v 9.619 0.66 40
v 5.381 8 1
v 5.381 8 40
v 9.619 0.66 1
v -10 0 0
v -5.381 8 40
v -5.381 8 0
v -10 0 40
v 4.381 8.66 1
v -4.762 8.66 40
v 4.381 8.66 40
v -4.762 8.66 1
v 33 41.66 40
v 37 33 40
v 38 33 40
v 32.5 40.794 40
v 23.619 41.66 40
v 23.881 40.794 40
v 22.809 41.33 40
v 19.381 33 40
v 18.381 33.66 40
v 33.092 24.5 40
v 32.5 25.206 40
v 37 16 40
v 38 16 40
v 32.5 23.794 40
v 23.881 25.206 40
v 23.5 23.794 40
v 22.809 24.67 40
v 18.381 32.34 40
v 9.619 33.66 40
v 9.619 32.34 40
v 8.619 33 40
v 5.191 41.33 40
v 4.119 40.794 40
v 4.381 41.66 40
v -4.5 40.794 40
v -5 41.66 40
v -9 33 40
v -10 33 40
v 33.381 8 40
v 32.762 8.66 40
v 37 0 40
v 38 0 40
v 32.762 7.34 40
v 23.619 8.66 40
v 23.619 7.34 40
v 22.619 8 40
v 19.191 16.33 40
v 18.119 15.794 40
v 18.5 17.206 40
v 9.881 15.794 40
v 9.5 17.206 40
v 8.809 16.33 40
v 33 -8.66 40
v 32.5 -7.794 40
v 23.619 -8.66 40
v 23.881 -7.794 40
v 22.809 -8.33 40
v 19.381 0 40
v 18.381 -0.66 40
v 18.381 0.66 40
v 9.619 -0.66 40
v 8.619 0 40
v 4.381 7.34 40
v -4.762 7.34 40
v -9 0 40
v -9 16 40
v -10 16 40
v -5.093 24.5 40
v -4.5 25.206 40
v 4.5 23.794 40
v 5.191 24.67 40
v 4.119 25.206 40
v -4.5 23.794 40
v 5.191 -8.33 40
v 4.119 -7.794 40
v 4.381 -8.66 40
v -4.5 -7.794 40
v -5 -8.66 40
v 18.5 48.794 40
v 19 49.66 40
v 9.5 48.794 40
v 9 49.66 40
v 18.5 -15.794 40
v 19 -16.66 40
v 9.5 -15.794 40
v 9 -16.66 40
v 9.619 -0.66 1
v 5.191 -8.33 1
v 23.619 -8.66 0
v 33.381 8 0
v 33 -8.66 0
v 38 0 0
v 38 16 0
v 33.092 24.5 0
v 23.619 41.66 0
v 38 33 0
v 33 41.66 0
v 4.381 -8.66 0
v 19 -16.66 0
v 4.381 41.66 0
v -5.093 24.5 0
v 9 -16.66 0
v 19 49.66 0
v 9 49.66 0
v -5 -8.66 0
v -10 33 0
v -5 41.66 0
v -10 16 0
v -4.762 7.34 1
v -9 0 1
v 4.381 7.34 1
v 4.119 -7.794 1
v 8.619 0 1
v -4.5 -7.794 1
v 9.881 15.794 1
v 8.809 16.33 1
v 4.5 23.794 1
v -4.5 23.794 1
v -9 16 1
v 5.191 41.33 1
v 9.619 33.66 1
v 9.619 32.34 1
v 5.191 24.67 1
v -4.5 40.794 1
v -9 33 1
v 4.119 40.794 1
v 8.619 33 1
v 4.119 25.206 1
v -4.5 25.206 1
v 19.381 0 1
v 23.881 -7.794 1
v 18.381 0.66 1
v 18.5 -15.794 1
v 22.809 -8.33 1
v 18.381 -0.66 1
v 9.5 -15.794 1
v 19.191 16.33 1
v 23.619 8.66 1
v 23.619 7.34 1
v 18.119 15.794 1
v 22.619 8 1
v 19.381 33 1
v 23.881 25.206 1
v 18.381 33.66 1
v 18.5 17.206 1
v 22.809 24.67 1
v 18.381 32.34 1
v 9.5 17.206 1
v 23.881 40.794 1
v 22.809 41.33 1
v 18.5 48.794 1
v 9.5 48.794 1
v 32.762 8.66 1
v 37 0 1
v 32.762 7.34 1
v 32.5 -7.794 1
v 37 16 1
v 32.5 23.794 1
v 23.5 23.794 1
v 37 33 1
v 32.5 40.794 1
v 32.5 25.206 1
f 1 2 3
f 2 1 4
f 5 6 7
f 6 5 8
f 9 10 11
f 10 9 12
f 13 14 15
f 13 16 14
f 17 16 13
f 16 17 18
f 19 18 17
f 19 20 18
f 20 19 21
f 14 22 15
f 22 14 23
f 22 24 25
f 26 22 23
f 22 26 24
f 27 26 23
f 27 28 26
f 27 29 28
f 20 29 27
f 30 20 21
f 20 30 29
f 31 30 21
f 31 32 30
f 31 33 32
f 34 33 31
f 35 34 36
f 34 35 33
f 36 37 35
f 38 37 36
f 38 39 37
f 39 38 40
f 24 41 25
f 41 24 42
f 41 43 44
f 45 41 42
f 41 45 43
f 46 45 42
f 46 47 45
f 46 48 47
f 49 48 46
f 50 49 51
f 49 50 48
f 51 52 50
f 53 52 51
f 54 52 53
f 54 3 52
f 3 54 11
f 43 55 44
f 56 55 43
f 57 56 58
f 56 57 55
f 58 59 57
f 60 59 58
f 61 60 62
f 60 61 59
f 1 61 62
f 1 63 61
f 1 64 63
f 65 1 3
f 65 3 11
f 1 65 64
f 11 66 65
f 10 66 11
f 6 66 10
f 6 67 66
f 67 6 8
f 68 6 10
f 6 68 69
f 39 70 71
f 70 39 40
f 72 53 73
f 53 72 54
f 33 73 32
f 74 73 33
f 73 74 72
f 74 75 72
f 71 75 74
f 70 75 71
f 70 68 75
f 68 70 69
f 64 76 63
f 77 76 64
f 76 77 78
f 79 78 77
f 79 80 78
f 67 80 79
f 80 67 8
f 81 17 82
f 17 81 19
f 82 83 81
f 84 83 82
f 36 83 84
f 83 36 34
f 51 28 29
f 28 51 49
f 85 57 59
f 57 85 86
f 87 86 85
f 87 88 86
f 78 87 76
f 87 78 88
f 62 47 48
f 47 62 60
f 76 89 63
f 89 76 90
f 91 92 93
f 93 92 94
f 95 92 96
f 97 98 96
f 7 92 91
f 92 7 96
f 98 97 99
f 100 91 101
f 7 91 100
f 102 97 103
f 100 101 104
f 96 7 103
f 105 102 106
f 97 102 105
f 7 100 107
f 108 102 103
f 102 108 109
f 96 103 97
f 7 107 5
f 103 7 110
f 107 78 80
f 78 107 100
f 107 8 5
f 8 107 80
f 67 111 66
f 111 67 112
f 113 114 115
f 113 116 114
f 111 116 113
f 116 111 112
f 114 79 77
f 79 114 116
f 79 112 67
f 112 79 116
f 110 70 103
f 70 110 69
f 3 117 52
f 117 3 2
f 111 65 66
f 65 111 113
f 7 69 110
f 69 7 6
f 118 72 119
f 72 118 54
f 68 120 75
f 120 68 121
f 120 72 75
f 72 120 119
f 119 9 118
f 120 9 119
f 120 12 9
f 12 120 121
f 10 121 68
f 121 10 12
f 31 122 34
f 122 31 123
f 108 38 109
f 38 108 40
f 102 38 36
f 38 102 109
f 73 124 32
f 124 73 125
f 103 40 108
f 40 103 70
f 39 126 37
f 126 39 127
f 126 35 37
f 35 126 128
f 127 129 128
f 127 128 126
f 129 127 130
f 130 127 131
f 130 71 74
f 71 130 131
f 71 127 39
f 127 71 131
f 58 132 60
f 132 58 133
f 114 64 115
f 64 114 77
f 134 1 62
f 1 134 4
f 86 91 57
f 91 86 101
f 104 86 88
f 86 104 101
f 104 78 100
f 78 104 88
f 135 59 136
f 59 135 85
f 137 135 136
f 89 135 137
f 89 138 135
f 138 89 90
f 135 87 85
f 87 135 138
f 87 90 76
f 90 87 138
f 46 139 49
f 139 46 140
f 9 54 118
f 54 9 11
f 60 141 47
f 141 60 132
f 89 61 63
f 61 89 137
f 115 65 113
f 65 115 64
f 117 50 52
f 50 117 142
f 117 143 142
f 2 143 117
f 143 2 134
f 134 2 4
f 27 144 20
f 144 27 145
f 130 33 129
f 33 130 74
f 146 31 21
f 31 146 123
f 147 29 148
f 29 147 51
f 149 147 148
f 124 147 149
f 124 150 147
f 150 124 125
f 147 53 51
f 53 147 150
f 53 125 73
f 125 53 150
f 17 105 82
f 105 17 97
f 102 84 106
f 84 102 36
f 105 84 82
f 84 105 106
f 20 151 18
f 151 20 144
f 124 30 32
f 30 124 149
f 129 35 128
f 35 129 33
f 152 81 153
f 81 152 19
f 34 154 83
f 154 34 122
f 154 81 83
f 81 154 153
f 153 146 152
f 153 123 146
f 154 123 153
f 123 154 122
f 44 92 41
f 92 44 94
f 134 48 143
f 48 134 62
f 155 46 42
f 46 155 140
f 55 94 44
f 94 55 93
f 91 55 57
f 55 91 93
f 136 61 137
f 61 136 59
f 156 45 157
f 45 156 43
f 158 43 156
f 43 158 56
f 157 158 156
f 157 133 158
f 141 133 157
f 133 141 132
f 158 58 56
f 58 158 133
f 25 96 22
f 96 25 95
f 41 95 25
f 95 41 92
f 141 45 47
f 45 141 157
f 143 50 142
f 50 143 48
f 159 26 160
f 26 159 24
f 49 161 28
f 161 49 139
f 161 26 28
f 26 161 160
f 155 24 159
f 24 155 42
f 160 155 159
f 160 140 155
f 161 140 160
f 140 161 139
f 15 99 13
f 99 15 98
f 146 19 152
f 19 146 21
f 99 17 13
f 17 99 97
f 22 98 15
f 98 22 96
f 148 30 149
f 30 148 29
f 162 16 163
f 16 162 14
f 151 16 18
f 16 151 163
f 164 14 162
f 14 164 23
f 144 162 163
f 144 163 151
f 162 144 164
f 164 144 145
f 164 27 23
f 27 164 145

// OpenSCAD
//Jessica Kang

depth=40;
th=1;
width=18;

hexatube();
translate([0,16,0]) hexatube();
hexatube();
translate([0,33,0]) hexatube();
hexatube();
translate([14,-8,0]) hexatube();
hexatube();
translate([14,8,0]) hexatube();
hexatube();
translate([14,25,0]) hexatube();
hexatube();
translate([14,41,0]) hexatube();
hexatube();
translate([28,0,0]) hexatube();
hexatube();
translate([28,16,0]) hexatube();
hexatube();
translate([28,33,0]) hexatube();

module hexatube() {
    difference() {
        cylinder(h=depth, r=10, $fn = 6);
        translate([0,0,1]) 
            cylinder(h=depth+1, r=9, $fn = 6);
        *translate([0,0,-1]) #cube(100);
    }
}
